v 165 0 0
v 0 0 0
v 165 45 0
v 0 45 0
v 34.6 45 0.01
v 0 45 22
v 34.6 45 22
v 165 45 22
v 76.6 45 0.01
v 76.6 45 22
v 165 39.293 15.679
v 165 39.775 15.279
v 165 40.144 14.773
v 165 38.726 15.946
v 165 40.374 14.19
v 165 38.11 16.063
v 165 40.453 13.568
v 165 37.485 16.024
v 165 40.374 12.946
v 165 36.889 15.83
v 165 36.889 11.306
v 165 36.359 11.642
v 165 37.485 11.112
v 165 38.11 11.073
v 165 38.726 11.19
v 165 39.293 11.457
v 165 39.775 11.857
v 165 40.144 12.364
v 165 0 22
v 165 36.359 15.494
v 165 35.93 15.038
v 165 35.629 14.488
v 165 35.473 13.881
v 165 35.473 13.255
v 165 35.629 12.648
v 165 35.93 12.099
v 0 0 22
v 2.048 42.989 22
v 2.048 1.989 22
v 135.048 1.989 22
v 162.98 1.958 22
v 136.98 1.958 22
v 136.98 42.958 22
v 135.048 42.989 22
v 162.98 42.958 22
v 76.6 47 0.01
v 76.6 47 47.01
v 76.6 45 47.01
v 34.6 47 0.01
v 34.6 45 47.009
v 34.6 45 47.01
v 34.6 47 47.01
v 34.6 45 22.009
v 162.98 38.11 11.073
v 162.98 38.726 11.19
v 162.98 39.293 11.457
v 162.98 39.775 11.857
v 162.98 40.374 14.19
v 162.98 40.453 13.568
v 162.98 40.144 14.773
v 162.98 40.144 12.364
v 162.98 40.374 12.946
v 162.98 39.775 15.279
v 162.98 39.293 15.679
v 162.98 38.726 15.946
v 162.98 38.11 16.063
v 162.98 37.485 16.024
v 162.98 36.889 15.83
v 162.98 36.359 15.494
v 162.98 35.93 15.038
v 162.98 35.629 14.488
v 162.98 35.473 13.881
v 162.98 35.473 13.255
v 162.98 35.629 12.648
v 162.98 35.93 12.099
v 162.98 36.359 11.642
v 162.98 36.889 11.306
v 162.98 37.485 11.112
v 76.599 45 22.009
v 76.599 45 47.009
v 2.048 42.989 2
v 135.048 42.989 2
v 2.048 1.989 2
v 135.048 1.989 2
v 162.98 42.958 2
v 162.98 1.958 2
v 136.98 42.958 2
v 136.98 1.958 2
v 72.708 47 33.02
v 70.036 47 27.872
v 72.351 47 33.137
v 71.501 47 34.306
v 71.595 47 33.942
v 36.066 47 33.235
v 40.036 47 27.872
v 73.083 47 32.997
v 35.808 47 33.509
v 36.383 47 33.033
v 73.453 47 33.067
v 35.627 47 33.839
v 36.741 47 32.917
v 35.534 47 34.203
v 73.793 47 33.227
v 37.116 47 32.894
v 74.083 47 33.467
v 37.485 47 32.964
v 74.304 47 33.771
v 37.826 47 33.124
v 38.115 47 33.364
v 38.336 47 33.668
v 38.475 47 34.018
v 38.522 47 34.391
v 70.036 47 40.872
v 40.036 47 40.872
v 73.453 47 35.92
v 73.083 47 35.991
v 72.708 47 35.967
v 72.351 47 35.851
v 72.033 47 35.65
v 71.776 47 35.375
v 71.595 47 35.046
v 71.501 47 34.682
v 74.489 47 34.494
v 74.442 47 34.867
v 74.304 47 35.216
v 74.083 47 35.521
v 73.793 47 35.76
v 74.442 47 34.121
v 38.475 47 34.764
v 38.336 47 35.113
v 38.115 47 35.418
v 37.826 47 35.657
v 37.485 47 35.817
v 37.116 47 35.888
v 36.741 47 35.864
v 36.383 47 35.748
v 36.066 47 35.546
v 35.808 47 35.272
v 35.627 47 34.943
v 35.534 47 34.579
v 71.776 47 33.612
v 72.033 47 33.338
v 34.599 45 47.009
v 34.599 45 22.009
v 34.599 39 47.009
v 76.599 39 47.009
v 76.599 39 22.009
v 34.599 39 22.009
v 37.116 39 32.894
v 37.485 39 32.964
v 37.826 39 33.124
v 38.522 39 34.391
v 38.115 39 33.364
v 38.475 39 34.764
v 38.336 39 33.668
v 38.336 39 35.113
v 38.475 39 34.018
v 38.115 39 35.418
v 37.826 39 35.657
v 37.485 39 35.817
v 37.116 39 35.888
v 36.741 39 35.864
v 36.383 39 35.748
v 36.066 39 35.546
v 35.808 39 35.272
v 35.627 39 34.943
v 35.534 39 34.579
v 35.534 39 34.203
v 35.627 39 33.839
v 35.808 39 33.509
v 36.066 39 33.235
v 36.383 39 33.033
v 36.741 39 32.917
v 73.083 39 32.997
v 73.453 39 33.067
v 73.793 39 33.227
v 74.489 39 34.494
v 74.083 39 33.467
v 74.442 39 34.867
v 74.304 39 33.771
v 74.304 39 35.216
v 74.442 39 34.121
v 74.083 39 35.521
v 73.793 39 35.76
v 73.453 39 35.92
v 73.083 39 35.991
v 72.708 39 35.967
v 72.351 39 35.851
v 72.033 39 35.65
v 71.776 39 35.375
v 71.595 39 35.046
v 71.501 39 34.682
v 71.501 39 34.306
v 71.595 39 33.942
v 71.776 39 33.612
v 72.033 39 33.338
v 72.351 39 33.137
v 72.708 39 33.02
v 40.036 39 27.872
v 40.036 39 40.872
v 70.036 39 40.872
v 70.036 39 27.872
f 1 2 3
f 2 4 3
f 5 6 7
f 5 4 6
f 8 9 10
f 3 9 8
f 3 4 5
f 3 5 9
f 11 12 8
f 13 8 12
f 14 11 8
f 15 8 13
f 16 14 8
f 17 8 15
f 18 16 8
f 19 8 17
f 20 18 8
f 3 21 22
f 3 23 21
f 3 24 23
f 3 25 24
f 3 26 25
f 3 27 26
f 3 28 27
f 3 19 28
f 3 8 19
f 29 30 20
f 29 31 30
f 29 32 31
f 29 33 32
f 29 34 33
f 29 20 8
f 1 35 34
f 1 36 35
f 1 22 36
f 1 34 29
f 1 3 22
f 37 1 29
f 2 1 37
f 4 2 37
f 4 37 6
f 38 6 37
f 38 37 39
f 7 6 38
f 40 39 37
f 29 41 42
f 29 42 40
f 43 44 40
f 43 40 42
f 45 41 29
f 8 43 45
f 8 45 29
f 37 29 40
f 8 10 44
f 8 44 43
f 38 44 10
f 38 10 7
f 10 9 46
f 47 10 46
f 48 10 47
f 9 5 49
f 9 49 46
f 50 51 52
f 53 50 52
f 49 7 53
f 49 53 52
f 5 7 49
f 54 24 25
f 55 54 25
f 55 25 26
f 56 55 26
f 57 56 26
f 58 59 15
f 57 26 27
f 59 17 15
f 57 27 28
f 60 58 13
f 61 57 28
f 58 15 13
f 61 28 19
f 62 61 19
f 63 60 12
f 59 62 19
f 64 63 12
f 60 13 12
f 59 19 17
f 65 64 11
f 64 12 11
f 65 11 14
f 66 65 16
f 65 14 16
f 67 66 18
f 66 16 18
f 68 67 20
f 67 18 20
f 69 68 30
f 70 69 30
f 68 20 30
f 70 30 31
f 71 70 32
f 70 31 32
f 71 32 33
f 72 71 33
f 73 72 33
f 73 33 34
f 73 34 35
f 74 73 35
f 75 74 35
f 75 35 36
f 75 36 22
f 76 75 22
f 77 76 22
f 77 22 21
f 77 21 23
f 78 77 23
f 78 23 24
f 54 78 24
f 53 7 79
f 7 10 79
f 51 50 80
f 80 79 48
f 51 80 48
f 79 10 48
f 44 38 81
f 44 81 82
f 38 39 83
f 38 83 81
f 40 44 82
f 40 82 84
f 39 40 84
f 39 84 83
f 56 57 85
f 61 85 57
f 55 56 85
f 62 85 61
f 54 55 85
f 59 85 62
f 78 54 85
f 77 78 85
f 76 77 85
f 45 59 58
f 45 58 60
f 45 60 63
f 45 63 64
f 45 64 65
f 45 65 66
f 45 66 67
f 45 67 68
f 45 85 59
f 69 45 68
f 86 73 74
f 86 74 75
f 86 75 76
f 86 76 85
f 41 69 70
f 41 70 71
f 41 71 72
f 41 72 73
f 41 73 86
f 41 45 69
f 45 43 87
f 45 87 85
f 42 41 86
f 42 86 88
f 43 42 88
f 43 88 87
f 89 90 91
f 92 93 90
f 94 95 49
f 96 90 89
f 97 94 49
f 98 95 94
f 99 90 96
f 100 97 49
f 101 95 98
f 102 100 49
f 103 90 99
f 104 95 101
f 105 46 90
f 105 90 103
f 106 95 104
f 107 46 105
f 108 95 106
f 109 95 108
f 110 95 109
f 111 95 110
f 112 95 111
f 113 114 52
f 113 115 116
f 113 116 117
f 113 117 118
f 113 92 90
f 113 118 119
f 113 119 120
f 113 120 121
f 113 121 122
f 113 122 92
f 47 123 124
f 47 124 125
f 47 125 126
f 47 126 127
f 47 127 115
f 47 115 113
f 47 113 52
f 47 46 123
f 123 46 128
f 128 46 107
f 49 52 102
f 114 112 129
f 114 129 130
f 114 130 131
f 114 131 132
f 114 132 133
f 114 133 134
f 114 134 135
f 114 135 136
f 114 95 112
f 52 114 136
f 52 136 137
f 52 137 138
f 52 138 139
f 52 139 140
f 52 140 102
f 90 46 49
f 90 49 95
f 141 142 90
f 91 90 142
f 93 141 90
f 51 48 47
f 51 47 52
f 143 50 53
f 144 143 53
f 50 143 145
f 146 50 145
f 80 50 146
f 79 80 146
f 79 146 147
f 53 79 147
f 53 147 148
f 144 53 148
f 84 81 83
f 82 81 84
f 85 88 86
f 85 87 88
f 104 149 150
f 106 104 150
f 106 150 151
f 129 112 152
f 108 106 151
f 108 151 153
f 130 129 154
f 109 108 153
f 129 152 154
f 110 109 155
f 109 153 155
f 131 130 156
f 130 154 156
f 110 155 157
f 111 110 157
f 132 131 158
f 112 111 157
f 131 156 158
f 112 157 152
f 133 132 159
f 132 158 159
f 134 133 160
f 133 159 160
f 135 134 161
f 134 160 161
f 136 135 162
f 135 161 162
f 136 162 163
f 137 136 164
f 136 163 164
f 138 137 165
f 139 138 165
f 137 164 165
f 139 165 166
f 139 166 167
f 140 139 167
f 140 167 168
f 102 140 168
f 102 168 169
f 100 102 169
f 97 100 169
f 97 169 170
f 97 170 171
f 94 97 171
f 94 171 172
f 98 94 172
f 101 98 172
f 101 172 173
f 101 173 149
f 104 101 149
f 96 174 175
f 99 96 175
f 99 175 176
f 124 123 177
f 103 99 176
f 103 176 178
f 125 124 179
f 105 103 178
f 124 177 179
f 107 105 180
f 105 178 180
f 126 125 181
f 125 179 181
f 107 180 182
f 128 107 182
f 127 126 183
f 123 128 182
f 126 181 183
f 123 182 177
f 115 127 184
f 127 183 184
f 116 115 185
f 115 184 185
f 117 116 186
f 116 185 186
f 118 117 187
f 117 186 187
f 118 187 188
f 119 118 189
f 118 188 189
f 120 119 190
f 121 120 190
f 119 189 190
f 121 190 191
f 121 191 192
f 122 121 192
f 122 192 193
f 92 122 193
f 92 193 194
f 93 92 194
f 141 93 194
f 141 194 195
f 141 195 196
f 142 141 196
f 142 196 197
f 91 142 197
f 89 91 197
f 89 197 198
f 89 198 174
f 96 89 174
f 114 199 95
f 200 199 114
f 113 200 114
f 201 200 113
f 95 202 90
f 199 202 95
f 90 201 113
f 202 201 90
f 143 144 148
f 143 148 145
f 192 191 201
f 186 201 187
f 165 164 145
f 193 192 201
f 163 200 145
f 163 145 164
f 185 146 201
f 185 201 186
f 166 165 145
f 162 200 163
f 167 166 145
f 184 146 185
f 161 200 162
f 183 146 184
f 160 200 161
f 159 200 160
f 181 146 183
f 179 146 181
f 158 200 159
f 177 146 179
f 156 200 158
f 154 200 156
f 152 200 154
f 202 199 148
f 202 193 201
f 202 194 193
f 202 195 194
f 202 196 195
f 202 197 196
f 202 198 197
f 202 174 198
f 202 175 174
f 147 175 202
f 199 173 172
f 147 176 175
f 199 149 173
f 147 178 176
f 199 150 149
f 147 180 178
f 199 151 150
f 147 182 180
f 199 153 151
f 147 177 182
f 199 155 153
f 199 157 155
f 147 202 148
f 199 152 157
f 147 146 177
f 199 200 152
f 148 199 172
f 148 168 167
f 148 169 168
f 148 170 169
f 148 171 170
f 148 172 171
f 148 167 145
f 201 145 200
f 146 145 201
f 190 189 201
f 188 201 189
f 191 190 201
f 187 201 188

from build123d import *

# Parameters (mm, degrees)
SKETCH_W        = 165
SKETCH_H        = 45
PAD_DEPTH       = 22
SKETCH001_W     = 133
SKETCH001_H     = 41
POCKET_DEPTH    = 20
SKETCH002_W     = 26
SKETCH002_H     = 41
POCKET001_DEPTH = 20
SKETCH003_W     = 42
SKETCH003_H     = 47
PAD001_DEPTH    = 2
SKETCH008_W     = 42
SKETCH008_H     = 25
PAD002_DEPTH    = 6
SKETCH005_W     = 30
SKETCH005_H     = 13
POCKET002_DEPTH = 8.001
SKETCH009_R     = 1.5
POCKET003_DEPTH = 8.001
SKETCH007_R     = 2.5
POCKET004_DEPTH = 5


with BuildPart() as part:
    # Sketch → Pad (new body)
    with BuildSketch(Plane.XY):
        with Locations((82.5, 22.5)):
            Rectangle(SKETCH_W, SKETCH_H)
    extrude(amount=PAD_DEPTH)

    # Sketch001 → Pocket (cut)
    with BuildSketch(Plane.XY.offset(22)):
        with Locations((68.54825, 22.488898)):
            Rectangle(SKETCH001_W, SKETCH001_H)
    extrude(amount=-POCKET_DEPTH, mode=Mode.SUBTRACT)

    # Sketch002 → Pocket001 (cut)
    with BuildSketch(Plane.XY.offset(22)):
        with Locations((149.979632, 22.458033)):
            Rectangle(SKETCH002_W, SKETCH002_H)
    extrude(amount=-POCKET001_DEPTH, mode=Mode.SUBTRACT)

    # Sketch003 → Pad001 (new body)
    with BuildSketch(Plane(origin=(0, 45, 0), x_dir=(-1, 0, 0), z_dir=(0, 1, 0))):
        with Locations((-55.599999, 23.509954)):
            Rectangle(SKETCH003_W, SKETCH003_H)
    extrude(amount=PAD001_DEPTH)

    # Sketch008 → Pad002 (new body)
    with BuildSketch(Plane.XZ.offset(-45)):
        with Locations((55.598549, 34.508675)):
            Rectangle(SKETCH008_W, SKETCH008_H)
    extrude(amount=PAD002_DEPTH)

    # Sketch005 → Pocket002 (cut, through all)
    with BuildSketch(Plane.XZ.offset(-39)):
        with Locations((55.035654, 34.372233)):
            Rectangle(SKETCH005_W, SKETCH005_H)
    extrude(amount=-POCKET002_DEPTH, mode=Mode.SUBTRACT)

    # Sketch009 → Pocket003 (cut, through all)
    with BuildSketch(Plane.XZ.offset(-39)):
        with Locations((37.021919, 34.390724)):
            Circle(SKETCH009_R)
        with Locations((72.989189, 34.493778)):
            Circle(SKETCH009_R)
    extrude(amount=-POCKET003_DEPTH, mode=Mode.SUBTRACT)

    # Sketch007 → Pocket004 (cut)
    with BuildSketch(Plane.YZ.offset(165)):
        with Locations((37.952961, 13.56812)):
            Circle(SKETCH007_R)
    extrude(amount=-POCKET004_DEPTH, mode=Mode.SUBTRACT)


solid = part.part
